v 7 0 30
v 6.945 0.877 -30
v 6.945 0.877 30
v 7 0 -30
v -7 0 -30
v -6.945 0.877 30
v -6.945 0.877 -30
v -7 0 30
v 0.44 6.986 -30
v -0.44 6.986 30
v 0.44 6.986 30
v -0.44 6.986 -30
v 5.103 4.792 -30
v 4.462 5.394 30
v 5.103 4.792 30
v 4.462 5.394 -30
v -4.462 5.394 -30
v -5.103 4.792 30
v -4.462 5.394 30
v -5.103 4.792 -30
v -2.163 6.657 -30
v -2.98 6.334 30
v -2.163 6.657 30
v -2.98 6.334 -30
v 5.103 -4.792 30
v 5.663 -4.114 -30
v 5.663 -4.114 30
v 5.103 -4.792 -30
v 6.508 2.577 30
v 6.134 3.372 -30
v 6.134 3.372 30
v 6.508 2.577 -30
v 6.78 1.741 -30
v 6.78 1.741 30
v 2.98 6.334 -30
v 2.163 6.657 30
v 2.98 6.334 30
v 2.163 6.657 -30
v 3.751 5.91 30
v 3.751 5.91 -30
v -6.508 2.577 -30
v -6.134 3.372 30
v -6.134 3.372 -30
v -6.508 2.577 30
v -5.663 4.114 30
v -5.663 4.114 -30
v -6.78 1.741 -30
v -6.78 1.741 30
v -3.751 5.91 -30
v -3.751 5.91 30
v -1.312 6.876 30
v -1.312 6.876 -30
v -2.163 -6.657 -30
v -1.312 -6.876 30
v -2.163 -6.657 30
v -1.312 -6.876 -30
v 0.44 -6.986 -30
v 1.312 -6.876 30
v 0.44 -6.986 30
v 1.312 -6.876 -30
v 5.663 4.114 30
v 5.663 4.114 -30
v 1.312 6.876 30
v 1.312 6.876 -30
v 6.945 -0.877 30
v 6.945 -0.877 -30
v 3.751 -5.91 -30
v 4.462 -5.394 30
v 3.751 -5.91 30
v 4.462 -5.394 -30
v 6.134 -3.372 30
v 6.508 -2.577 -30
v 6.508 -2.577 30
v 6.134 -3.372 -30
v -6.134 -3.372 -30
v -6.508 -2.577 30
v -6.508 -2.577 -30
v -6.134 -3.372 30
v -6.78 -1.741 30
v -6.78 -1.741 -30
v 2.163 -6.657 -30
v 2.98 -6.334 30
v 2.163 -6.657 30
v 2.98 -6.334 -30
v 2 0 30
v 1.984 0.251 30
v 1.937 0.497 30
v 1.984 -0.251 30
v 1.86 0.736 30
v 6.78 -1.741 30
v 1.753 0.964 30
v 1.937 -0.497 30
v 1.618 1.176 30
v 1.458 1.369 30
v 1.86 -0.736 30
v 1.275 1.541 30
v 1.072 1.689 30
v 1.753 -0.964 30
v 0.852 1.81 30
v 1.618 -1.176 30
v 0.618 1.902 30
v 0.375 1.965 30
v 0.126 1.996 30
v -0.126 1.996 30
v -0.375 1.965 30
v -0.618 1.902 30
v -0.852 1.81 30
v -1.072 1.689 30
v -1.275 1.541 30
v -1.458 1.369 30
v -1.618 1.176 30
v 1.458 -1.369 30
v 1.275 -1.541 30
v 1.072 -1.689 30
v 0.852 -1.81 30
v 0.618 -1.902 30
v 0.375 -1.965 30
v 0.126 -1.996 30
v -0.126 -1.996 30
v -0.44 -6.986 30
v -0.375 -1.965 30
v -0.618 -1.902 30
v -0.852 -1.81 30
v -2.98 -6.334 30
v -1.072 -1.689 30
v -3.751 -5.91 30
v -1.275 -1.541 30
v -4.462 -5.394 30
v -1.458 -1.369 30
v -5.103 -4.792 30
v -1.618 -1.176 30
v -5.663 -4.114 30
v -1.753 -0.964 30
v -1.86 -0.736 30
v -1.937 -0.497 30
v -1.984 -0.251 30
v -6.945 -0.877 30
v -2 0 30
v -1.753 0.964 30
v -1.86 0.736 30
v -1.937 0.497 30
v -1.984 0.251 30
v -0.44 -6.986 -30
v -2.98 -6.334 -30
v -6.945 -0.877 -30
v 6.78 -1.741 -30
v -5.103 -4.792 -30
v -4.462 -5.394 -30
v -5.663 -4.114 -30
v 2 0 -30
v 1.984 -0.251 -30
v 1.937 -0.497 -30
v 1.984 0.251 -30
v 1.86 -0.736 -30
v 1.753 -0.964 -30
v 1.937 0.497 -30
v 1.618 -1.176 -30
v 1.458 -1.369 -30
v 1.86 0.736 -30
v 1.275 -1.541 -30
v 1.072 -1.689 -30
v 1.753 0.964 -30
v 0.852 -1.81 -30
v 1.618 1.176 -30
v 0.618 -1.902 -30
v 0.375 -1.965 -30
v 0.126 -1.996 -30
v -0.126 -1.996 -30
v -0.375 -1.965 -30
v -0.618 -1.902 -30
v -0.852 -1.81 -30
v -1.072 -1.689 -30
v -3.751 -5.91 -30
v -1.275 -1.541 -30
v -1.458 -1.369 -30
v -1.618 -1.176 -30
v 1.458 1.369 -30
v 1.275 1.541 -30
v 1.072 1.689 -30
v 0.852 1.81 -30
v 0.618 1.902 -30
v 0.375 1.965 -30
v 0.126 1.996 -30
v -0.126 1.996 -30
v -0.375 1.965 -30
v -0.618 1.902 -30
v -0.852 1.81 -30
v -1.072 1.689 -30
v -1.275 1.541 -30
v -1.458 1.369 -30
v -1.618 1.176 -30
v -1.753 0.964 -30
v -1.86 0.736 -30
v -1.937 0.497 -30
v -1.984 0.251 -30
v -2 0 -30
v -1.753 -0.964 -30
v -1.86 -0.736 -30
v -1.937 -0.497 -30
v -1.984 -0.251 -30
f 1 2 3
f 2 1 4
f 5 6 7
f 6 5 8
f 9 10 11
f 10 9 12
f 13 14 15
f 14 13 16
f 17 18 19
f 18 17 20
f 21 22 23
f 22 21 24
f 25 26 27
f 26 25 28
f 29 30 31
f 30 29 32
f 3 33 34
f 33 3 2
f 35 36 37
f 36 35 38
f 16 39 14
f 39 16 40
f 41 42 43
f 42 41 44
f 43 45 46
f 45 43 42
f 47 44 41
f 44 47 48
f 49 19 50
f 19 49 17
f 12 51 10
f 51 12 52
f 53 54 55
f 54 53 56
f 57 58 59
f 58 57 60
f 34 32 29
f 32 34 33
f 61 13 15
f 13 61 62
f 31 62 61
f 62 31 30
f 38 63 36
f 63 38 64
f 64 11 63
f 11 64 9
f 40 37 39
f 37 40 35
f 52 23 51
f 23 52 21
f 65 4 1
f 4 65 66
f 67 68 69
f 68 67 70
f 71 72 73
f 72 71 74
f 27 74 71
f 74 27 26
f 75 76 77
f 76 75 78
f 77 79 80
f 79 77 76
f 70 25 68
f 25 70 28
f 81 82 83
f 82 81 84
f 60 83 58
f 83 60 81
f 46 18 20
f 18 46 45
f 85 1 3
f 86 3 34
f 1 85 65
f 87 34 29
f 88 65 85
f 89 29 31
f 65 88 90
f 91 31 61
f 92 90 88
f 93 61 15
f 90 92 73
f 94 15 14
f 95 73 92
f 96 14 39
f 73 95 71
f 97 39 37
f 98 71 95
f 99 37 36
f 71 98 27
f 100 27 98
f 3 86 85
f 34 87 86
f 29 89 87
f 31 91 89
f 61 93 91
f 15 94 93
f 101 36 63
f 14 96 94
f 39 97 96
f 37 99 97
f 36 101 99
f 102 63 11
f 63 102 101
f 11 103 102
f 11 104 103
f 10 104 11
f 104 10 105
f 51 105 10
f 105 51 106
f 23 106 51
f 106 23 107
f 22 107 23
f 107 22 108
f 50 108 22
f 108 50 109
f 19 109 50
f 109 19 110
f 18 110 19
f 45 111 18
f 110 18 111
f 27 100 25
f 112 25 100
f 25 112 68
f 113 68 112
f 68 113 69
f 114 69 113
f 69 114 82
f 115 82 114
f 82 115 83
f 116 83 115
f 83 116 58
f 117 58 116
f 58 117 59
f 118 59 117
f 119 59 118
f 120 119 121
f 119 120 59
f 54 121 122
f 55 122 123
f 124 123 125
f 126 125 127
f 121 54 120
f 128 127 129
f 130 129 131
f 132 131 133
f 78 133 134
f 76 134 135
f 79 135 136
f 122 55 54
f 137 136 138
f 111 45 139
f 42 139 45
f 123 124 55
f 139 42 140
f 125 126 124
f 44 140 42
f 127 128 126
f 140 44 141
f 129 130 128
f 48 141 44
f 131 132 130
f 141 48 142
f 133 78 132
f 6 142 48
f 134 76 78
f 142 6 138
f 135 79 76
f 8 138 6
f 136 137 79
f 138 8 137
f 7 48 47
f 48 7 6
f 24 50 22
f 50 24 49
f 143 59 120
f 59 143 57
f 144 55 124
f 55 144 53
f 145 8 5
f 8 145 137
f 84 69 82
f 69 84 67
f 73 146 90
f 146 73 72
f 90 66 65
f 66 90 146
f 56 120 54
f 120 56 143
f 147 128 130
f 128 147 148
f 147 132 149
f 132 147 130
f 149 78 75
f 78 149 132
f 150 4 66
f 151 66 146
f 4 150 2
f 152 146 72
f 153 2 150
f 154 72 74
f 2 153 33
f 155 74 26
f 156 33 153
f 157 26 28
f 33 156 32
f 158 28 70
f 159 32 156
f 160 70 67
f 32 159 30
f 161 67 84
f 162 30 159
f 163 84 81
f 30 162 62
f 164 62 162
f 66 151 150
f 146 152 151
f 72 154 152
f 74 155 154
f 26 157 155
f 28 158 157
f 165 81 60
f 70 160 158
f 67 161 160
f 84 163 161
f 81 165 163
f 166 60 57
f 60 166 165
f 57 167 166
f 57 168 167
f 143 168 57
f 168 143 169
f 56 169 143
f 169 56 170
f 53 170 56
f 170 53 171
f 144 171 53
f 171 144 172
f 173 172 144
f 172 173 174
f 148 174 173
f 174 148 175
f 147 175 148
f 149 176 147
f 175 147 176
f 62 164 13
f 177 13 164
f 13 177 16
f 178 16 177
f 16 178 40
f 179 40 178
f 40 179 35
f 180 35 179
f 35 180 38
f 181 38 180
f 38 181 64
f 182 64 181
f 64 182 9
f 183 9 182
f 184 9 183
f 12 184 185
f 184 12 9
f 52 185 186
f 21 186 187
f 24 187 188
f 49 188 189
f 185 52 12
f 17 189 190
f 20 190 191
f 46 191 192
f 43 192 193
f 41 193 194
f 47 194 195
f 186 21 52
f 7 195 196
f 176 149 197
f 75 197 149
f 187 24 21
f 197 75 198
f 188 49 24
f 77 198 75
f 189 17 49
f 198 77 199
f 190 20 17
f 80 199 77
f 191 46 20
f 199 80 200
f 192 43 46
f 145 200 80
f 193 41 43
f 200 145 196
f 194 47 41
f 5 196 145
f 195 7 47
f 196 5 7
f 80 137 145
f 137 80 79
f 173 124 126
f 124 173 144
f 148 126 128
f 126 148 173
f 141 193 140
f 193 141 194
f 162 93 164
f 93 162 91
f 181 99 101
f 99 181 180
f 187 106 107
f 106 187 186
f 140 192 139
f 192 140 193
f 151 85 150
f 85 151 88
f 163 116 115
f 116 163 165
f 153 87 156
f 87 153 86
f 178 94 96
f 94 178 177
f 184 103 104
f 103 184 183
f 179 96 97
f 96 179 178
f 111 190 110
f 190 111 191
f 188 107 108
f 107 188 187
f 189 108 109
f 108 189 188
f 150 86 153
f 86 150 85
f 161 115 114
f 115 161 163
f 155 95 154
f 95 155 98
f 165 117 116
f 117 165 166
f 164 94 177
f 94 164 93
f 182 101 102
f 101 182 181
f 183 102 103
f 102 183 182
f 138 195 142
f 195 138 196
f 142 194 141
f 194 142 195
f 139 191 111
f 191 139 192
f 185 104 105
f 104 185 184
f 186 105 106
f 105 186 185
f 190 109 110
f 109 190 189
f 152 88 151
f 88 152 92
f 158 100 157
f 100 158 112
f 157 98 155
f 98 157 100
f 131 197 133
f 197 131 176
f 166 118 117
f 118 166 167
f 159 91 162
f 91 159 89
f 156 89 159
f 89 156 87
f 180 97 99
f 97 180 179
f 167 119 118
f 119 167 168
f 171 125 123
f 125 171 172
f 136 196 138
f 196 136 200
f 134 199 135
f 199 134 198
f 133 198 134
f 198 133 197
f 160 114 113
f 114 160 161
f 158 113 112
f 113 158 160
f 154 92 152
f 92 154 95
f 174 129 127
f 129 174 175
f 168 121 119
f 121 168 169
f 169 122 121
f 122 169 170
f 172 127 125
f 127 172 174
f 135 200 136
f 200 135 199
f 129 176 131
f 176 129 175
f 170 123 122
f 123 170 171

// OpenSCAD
$fn = 50;


difference() {
	union() {
		translate(v = [0, 0, -30.0000000000]) {
			cylinder(h = 60, r = 7.0000000000);
		}
	}
	union() {
		translate(v = [0, 0, -100.0000000000]) {
			cylinder(h = 200, r = 2.0000000000);
		}
	}
}
